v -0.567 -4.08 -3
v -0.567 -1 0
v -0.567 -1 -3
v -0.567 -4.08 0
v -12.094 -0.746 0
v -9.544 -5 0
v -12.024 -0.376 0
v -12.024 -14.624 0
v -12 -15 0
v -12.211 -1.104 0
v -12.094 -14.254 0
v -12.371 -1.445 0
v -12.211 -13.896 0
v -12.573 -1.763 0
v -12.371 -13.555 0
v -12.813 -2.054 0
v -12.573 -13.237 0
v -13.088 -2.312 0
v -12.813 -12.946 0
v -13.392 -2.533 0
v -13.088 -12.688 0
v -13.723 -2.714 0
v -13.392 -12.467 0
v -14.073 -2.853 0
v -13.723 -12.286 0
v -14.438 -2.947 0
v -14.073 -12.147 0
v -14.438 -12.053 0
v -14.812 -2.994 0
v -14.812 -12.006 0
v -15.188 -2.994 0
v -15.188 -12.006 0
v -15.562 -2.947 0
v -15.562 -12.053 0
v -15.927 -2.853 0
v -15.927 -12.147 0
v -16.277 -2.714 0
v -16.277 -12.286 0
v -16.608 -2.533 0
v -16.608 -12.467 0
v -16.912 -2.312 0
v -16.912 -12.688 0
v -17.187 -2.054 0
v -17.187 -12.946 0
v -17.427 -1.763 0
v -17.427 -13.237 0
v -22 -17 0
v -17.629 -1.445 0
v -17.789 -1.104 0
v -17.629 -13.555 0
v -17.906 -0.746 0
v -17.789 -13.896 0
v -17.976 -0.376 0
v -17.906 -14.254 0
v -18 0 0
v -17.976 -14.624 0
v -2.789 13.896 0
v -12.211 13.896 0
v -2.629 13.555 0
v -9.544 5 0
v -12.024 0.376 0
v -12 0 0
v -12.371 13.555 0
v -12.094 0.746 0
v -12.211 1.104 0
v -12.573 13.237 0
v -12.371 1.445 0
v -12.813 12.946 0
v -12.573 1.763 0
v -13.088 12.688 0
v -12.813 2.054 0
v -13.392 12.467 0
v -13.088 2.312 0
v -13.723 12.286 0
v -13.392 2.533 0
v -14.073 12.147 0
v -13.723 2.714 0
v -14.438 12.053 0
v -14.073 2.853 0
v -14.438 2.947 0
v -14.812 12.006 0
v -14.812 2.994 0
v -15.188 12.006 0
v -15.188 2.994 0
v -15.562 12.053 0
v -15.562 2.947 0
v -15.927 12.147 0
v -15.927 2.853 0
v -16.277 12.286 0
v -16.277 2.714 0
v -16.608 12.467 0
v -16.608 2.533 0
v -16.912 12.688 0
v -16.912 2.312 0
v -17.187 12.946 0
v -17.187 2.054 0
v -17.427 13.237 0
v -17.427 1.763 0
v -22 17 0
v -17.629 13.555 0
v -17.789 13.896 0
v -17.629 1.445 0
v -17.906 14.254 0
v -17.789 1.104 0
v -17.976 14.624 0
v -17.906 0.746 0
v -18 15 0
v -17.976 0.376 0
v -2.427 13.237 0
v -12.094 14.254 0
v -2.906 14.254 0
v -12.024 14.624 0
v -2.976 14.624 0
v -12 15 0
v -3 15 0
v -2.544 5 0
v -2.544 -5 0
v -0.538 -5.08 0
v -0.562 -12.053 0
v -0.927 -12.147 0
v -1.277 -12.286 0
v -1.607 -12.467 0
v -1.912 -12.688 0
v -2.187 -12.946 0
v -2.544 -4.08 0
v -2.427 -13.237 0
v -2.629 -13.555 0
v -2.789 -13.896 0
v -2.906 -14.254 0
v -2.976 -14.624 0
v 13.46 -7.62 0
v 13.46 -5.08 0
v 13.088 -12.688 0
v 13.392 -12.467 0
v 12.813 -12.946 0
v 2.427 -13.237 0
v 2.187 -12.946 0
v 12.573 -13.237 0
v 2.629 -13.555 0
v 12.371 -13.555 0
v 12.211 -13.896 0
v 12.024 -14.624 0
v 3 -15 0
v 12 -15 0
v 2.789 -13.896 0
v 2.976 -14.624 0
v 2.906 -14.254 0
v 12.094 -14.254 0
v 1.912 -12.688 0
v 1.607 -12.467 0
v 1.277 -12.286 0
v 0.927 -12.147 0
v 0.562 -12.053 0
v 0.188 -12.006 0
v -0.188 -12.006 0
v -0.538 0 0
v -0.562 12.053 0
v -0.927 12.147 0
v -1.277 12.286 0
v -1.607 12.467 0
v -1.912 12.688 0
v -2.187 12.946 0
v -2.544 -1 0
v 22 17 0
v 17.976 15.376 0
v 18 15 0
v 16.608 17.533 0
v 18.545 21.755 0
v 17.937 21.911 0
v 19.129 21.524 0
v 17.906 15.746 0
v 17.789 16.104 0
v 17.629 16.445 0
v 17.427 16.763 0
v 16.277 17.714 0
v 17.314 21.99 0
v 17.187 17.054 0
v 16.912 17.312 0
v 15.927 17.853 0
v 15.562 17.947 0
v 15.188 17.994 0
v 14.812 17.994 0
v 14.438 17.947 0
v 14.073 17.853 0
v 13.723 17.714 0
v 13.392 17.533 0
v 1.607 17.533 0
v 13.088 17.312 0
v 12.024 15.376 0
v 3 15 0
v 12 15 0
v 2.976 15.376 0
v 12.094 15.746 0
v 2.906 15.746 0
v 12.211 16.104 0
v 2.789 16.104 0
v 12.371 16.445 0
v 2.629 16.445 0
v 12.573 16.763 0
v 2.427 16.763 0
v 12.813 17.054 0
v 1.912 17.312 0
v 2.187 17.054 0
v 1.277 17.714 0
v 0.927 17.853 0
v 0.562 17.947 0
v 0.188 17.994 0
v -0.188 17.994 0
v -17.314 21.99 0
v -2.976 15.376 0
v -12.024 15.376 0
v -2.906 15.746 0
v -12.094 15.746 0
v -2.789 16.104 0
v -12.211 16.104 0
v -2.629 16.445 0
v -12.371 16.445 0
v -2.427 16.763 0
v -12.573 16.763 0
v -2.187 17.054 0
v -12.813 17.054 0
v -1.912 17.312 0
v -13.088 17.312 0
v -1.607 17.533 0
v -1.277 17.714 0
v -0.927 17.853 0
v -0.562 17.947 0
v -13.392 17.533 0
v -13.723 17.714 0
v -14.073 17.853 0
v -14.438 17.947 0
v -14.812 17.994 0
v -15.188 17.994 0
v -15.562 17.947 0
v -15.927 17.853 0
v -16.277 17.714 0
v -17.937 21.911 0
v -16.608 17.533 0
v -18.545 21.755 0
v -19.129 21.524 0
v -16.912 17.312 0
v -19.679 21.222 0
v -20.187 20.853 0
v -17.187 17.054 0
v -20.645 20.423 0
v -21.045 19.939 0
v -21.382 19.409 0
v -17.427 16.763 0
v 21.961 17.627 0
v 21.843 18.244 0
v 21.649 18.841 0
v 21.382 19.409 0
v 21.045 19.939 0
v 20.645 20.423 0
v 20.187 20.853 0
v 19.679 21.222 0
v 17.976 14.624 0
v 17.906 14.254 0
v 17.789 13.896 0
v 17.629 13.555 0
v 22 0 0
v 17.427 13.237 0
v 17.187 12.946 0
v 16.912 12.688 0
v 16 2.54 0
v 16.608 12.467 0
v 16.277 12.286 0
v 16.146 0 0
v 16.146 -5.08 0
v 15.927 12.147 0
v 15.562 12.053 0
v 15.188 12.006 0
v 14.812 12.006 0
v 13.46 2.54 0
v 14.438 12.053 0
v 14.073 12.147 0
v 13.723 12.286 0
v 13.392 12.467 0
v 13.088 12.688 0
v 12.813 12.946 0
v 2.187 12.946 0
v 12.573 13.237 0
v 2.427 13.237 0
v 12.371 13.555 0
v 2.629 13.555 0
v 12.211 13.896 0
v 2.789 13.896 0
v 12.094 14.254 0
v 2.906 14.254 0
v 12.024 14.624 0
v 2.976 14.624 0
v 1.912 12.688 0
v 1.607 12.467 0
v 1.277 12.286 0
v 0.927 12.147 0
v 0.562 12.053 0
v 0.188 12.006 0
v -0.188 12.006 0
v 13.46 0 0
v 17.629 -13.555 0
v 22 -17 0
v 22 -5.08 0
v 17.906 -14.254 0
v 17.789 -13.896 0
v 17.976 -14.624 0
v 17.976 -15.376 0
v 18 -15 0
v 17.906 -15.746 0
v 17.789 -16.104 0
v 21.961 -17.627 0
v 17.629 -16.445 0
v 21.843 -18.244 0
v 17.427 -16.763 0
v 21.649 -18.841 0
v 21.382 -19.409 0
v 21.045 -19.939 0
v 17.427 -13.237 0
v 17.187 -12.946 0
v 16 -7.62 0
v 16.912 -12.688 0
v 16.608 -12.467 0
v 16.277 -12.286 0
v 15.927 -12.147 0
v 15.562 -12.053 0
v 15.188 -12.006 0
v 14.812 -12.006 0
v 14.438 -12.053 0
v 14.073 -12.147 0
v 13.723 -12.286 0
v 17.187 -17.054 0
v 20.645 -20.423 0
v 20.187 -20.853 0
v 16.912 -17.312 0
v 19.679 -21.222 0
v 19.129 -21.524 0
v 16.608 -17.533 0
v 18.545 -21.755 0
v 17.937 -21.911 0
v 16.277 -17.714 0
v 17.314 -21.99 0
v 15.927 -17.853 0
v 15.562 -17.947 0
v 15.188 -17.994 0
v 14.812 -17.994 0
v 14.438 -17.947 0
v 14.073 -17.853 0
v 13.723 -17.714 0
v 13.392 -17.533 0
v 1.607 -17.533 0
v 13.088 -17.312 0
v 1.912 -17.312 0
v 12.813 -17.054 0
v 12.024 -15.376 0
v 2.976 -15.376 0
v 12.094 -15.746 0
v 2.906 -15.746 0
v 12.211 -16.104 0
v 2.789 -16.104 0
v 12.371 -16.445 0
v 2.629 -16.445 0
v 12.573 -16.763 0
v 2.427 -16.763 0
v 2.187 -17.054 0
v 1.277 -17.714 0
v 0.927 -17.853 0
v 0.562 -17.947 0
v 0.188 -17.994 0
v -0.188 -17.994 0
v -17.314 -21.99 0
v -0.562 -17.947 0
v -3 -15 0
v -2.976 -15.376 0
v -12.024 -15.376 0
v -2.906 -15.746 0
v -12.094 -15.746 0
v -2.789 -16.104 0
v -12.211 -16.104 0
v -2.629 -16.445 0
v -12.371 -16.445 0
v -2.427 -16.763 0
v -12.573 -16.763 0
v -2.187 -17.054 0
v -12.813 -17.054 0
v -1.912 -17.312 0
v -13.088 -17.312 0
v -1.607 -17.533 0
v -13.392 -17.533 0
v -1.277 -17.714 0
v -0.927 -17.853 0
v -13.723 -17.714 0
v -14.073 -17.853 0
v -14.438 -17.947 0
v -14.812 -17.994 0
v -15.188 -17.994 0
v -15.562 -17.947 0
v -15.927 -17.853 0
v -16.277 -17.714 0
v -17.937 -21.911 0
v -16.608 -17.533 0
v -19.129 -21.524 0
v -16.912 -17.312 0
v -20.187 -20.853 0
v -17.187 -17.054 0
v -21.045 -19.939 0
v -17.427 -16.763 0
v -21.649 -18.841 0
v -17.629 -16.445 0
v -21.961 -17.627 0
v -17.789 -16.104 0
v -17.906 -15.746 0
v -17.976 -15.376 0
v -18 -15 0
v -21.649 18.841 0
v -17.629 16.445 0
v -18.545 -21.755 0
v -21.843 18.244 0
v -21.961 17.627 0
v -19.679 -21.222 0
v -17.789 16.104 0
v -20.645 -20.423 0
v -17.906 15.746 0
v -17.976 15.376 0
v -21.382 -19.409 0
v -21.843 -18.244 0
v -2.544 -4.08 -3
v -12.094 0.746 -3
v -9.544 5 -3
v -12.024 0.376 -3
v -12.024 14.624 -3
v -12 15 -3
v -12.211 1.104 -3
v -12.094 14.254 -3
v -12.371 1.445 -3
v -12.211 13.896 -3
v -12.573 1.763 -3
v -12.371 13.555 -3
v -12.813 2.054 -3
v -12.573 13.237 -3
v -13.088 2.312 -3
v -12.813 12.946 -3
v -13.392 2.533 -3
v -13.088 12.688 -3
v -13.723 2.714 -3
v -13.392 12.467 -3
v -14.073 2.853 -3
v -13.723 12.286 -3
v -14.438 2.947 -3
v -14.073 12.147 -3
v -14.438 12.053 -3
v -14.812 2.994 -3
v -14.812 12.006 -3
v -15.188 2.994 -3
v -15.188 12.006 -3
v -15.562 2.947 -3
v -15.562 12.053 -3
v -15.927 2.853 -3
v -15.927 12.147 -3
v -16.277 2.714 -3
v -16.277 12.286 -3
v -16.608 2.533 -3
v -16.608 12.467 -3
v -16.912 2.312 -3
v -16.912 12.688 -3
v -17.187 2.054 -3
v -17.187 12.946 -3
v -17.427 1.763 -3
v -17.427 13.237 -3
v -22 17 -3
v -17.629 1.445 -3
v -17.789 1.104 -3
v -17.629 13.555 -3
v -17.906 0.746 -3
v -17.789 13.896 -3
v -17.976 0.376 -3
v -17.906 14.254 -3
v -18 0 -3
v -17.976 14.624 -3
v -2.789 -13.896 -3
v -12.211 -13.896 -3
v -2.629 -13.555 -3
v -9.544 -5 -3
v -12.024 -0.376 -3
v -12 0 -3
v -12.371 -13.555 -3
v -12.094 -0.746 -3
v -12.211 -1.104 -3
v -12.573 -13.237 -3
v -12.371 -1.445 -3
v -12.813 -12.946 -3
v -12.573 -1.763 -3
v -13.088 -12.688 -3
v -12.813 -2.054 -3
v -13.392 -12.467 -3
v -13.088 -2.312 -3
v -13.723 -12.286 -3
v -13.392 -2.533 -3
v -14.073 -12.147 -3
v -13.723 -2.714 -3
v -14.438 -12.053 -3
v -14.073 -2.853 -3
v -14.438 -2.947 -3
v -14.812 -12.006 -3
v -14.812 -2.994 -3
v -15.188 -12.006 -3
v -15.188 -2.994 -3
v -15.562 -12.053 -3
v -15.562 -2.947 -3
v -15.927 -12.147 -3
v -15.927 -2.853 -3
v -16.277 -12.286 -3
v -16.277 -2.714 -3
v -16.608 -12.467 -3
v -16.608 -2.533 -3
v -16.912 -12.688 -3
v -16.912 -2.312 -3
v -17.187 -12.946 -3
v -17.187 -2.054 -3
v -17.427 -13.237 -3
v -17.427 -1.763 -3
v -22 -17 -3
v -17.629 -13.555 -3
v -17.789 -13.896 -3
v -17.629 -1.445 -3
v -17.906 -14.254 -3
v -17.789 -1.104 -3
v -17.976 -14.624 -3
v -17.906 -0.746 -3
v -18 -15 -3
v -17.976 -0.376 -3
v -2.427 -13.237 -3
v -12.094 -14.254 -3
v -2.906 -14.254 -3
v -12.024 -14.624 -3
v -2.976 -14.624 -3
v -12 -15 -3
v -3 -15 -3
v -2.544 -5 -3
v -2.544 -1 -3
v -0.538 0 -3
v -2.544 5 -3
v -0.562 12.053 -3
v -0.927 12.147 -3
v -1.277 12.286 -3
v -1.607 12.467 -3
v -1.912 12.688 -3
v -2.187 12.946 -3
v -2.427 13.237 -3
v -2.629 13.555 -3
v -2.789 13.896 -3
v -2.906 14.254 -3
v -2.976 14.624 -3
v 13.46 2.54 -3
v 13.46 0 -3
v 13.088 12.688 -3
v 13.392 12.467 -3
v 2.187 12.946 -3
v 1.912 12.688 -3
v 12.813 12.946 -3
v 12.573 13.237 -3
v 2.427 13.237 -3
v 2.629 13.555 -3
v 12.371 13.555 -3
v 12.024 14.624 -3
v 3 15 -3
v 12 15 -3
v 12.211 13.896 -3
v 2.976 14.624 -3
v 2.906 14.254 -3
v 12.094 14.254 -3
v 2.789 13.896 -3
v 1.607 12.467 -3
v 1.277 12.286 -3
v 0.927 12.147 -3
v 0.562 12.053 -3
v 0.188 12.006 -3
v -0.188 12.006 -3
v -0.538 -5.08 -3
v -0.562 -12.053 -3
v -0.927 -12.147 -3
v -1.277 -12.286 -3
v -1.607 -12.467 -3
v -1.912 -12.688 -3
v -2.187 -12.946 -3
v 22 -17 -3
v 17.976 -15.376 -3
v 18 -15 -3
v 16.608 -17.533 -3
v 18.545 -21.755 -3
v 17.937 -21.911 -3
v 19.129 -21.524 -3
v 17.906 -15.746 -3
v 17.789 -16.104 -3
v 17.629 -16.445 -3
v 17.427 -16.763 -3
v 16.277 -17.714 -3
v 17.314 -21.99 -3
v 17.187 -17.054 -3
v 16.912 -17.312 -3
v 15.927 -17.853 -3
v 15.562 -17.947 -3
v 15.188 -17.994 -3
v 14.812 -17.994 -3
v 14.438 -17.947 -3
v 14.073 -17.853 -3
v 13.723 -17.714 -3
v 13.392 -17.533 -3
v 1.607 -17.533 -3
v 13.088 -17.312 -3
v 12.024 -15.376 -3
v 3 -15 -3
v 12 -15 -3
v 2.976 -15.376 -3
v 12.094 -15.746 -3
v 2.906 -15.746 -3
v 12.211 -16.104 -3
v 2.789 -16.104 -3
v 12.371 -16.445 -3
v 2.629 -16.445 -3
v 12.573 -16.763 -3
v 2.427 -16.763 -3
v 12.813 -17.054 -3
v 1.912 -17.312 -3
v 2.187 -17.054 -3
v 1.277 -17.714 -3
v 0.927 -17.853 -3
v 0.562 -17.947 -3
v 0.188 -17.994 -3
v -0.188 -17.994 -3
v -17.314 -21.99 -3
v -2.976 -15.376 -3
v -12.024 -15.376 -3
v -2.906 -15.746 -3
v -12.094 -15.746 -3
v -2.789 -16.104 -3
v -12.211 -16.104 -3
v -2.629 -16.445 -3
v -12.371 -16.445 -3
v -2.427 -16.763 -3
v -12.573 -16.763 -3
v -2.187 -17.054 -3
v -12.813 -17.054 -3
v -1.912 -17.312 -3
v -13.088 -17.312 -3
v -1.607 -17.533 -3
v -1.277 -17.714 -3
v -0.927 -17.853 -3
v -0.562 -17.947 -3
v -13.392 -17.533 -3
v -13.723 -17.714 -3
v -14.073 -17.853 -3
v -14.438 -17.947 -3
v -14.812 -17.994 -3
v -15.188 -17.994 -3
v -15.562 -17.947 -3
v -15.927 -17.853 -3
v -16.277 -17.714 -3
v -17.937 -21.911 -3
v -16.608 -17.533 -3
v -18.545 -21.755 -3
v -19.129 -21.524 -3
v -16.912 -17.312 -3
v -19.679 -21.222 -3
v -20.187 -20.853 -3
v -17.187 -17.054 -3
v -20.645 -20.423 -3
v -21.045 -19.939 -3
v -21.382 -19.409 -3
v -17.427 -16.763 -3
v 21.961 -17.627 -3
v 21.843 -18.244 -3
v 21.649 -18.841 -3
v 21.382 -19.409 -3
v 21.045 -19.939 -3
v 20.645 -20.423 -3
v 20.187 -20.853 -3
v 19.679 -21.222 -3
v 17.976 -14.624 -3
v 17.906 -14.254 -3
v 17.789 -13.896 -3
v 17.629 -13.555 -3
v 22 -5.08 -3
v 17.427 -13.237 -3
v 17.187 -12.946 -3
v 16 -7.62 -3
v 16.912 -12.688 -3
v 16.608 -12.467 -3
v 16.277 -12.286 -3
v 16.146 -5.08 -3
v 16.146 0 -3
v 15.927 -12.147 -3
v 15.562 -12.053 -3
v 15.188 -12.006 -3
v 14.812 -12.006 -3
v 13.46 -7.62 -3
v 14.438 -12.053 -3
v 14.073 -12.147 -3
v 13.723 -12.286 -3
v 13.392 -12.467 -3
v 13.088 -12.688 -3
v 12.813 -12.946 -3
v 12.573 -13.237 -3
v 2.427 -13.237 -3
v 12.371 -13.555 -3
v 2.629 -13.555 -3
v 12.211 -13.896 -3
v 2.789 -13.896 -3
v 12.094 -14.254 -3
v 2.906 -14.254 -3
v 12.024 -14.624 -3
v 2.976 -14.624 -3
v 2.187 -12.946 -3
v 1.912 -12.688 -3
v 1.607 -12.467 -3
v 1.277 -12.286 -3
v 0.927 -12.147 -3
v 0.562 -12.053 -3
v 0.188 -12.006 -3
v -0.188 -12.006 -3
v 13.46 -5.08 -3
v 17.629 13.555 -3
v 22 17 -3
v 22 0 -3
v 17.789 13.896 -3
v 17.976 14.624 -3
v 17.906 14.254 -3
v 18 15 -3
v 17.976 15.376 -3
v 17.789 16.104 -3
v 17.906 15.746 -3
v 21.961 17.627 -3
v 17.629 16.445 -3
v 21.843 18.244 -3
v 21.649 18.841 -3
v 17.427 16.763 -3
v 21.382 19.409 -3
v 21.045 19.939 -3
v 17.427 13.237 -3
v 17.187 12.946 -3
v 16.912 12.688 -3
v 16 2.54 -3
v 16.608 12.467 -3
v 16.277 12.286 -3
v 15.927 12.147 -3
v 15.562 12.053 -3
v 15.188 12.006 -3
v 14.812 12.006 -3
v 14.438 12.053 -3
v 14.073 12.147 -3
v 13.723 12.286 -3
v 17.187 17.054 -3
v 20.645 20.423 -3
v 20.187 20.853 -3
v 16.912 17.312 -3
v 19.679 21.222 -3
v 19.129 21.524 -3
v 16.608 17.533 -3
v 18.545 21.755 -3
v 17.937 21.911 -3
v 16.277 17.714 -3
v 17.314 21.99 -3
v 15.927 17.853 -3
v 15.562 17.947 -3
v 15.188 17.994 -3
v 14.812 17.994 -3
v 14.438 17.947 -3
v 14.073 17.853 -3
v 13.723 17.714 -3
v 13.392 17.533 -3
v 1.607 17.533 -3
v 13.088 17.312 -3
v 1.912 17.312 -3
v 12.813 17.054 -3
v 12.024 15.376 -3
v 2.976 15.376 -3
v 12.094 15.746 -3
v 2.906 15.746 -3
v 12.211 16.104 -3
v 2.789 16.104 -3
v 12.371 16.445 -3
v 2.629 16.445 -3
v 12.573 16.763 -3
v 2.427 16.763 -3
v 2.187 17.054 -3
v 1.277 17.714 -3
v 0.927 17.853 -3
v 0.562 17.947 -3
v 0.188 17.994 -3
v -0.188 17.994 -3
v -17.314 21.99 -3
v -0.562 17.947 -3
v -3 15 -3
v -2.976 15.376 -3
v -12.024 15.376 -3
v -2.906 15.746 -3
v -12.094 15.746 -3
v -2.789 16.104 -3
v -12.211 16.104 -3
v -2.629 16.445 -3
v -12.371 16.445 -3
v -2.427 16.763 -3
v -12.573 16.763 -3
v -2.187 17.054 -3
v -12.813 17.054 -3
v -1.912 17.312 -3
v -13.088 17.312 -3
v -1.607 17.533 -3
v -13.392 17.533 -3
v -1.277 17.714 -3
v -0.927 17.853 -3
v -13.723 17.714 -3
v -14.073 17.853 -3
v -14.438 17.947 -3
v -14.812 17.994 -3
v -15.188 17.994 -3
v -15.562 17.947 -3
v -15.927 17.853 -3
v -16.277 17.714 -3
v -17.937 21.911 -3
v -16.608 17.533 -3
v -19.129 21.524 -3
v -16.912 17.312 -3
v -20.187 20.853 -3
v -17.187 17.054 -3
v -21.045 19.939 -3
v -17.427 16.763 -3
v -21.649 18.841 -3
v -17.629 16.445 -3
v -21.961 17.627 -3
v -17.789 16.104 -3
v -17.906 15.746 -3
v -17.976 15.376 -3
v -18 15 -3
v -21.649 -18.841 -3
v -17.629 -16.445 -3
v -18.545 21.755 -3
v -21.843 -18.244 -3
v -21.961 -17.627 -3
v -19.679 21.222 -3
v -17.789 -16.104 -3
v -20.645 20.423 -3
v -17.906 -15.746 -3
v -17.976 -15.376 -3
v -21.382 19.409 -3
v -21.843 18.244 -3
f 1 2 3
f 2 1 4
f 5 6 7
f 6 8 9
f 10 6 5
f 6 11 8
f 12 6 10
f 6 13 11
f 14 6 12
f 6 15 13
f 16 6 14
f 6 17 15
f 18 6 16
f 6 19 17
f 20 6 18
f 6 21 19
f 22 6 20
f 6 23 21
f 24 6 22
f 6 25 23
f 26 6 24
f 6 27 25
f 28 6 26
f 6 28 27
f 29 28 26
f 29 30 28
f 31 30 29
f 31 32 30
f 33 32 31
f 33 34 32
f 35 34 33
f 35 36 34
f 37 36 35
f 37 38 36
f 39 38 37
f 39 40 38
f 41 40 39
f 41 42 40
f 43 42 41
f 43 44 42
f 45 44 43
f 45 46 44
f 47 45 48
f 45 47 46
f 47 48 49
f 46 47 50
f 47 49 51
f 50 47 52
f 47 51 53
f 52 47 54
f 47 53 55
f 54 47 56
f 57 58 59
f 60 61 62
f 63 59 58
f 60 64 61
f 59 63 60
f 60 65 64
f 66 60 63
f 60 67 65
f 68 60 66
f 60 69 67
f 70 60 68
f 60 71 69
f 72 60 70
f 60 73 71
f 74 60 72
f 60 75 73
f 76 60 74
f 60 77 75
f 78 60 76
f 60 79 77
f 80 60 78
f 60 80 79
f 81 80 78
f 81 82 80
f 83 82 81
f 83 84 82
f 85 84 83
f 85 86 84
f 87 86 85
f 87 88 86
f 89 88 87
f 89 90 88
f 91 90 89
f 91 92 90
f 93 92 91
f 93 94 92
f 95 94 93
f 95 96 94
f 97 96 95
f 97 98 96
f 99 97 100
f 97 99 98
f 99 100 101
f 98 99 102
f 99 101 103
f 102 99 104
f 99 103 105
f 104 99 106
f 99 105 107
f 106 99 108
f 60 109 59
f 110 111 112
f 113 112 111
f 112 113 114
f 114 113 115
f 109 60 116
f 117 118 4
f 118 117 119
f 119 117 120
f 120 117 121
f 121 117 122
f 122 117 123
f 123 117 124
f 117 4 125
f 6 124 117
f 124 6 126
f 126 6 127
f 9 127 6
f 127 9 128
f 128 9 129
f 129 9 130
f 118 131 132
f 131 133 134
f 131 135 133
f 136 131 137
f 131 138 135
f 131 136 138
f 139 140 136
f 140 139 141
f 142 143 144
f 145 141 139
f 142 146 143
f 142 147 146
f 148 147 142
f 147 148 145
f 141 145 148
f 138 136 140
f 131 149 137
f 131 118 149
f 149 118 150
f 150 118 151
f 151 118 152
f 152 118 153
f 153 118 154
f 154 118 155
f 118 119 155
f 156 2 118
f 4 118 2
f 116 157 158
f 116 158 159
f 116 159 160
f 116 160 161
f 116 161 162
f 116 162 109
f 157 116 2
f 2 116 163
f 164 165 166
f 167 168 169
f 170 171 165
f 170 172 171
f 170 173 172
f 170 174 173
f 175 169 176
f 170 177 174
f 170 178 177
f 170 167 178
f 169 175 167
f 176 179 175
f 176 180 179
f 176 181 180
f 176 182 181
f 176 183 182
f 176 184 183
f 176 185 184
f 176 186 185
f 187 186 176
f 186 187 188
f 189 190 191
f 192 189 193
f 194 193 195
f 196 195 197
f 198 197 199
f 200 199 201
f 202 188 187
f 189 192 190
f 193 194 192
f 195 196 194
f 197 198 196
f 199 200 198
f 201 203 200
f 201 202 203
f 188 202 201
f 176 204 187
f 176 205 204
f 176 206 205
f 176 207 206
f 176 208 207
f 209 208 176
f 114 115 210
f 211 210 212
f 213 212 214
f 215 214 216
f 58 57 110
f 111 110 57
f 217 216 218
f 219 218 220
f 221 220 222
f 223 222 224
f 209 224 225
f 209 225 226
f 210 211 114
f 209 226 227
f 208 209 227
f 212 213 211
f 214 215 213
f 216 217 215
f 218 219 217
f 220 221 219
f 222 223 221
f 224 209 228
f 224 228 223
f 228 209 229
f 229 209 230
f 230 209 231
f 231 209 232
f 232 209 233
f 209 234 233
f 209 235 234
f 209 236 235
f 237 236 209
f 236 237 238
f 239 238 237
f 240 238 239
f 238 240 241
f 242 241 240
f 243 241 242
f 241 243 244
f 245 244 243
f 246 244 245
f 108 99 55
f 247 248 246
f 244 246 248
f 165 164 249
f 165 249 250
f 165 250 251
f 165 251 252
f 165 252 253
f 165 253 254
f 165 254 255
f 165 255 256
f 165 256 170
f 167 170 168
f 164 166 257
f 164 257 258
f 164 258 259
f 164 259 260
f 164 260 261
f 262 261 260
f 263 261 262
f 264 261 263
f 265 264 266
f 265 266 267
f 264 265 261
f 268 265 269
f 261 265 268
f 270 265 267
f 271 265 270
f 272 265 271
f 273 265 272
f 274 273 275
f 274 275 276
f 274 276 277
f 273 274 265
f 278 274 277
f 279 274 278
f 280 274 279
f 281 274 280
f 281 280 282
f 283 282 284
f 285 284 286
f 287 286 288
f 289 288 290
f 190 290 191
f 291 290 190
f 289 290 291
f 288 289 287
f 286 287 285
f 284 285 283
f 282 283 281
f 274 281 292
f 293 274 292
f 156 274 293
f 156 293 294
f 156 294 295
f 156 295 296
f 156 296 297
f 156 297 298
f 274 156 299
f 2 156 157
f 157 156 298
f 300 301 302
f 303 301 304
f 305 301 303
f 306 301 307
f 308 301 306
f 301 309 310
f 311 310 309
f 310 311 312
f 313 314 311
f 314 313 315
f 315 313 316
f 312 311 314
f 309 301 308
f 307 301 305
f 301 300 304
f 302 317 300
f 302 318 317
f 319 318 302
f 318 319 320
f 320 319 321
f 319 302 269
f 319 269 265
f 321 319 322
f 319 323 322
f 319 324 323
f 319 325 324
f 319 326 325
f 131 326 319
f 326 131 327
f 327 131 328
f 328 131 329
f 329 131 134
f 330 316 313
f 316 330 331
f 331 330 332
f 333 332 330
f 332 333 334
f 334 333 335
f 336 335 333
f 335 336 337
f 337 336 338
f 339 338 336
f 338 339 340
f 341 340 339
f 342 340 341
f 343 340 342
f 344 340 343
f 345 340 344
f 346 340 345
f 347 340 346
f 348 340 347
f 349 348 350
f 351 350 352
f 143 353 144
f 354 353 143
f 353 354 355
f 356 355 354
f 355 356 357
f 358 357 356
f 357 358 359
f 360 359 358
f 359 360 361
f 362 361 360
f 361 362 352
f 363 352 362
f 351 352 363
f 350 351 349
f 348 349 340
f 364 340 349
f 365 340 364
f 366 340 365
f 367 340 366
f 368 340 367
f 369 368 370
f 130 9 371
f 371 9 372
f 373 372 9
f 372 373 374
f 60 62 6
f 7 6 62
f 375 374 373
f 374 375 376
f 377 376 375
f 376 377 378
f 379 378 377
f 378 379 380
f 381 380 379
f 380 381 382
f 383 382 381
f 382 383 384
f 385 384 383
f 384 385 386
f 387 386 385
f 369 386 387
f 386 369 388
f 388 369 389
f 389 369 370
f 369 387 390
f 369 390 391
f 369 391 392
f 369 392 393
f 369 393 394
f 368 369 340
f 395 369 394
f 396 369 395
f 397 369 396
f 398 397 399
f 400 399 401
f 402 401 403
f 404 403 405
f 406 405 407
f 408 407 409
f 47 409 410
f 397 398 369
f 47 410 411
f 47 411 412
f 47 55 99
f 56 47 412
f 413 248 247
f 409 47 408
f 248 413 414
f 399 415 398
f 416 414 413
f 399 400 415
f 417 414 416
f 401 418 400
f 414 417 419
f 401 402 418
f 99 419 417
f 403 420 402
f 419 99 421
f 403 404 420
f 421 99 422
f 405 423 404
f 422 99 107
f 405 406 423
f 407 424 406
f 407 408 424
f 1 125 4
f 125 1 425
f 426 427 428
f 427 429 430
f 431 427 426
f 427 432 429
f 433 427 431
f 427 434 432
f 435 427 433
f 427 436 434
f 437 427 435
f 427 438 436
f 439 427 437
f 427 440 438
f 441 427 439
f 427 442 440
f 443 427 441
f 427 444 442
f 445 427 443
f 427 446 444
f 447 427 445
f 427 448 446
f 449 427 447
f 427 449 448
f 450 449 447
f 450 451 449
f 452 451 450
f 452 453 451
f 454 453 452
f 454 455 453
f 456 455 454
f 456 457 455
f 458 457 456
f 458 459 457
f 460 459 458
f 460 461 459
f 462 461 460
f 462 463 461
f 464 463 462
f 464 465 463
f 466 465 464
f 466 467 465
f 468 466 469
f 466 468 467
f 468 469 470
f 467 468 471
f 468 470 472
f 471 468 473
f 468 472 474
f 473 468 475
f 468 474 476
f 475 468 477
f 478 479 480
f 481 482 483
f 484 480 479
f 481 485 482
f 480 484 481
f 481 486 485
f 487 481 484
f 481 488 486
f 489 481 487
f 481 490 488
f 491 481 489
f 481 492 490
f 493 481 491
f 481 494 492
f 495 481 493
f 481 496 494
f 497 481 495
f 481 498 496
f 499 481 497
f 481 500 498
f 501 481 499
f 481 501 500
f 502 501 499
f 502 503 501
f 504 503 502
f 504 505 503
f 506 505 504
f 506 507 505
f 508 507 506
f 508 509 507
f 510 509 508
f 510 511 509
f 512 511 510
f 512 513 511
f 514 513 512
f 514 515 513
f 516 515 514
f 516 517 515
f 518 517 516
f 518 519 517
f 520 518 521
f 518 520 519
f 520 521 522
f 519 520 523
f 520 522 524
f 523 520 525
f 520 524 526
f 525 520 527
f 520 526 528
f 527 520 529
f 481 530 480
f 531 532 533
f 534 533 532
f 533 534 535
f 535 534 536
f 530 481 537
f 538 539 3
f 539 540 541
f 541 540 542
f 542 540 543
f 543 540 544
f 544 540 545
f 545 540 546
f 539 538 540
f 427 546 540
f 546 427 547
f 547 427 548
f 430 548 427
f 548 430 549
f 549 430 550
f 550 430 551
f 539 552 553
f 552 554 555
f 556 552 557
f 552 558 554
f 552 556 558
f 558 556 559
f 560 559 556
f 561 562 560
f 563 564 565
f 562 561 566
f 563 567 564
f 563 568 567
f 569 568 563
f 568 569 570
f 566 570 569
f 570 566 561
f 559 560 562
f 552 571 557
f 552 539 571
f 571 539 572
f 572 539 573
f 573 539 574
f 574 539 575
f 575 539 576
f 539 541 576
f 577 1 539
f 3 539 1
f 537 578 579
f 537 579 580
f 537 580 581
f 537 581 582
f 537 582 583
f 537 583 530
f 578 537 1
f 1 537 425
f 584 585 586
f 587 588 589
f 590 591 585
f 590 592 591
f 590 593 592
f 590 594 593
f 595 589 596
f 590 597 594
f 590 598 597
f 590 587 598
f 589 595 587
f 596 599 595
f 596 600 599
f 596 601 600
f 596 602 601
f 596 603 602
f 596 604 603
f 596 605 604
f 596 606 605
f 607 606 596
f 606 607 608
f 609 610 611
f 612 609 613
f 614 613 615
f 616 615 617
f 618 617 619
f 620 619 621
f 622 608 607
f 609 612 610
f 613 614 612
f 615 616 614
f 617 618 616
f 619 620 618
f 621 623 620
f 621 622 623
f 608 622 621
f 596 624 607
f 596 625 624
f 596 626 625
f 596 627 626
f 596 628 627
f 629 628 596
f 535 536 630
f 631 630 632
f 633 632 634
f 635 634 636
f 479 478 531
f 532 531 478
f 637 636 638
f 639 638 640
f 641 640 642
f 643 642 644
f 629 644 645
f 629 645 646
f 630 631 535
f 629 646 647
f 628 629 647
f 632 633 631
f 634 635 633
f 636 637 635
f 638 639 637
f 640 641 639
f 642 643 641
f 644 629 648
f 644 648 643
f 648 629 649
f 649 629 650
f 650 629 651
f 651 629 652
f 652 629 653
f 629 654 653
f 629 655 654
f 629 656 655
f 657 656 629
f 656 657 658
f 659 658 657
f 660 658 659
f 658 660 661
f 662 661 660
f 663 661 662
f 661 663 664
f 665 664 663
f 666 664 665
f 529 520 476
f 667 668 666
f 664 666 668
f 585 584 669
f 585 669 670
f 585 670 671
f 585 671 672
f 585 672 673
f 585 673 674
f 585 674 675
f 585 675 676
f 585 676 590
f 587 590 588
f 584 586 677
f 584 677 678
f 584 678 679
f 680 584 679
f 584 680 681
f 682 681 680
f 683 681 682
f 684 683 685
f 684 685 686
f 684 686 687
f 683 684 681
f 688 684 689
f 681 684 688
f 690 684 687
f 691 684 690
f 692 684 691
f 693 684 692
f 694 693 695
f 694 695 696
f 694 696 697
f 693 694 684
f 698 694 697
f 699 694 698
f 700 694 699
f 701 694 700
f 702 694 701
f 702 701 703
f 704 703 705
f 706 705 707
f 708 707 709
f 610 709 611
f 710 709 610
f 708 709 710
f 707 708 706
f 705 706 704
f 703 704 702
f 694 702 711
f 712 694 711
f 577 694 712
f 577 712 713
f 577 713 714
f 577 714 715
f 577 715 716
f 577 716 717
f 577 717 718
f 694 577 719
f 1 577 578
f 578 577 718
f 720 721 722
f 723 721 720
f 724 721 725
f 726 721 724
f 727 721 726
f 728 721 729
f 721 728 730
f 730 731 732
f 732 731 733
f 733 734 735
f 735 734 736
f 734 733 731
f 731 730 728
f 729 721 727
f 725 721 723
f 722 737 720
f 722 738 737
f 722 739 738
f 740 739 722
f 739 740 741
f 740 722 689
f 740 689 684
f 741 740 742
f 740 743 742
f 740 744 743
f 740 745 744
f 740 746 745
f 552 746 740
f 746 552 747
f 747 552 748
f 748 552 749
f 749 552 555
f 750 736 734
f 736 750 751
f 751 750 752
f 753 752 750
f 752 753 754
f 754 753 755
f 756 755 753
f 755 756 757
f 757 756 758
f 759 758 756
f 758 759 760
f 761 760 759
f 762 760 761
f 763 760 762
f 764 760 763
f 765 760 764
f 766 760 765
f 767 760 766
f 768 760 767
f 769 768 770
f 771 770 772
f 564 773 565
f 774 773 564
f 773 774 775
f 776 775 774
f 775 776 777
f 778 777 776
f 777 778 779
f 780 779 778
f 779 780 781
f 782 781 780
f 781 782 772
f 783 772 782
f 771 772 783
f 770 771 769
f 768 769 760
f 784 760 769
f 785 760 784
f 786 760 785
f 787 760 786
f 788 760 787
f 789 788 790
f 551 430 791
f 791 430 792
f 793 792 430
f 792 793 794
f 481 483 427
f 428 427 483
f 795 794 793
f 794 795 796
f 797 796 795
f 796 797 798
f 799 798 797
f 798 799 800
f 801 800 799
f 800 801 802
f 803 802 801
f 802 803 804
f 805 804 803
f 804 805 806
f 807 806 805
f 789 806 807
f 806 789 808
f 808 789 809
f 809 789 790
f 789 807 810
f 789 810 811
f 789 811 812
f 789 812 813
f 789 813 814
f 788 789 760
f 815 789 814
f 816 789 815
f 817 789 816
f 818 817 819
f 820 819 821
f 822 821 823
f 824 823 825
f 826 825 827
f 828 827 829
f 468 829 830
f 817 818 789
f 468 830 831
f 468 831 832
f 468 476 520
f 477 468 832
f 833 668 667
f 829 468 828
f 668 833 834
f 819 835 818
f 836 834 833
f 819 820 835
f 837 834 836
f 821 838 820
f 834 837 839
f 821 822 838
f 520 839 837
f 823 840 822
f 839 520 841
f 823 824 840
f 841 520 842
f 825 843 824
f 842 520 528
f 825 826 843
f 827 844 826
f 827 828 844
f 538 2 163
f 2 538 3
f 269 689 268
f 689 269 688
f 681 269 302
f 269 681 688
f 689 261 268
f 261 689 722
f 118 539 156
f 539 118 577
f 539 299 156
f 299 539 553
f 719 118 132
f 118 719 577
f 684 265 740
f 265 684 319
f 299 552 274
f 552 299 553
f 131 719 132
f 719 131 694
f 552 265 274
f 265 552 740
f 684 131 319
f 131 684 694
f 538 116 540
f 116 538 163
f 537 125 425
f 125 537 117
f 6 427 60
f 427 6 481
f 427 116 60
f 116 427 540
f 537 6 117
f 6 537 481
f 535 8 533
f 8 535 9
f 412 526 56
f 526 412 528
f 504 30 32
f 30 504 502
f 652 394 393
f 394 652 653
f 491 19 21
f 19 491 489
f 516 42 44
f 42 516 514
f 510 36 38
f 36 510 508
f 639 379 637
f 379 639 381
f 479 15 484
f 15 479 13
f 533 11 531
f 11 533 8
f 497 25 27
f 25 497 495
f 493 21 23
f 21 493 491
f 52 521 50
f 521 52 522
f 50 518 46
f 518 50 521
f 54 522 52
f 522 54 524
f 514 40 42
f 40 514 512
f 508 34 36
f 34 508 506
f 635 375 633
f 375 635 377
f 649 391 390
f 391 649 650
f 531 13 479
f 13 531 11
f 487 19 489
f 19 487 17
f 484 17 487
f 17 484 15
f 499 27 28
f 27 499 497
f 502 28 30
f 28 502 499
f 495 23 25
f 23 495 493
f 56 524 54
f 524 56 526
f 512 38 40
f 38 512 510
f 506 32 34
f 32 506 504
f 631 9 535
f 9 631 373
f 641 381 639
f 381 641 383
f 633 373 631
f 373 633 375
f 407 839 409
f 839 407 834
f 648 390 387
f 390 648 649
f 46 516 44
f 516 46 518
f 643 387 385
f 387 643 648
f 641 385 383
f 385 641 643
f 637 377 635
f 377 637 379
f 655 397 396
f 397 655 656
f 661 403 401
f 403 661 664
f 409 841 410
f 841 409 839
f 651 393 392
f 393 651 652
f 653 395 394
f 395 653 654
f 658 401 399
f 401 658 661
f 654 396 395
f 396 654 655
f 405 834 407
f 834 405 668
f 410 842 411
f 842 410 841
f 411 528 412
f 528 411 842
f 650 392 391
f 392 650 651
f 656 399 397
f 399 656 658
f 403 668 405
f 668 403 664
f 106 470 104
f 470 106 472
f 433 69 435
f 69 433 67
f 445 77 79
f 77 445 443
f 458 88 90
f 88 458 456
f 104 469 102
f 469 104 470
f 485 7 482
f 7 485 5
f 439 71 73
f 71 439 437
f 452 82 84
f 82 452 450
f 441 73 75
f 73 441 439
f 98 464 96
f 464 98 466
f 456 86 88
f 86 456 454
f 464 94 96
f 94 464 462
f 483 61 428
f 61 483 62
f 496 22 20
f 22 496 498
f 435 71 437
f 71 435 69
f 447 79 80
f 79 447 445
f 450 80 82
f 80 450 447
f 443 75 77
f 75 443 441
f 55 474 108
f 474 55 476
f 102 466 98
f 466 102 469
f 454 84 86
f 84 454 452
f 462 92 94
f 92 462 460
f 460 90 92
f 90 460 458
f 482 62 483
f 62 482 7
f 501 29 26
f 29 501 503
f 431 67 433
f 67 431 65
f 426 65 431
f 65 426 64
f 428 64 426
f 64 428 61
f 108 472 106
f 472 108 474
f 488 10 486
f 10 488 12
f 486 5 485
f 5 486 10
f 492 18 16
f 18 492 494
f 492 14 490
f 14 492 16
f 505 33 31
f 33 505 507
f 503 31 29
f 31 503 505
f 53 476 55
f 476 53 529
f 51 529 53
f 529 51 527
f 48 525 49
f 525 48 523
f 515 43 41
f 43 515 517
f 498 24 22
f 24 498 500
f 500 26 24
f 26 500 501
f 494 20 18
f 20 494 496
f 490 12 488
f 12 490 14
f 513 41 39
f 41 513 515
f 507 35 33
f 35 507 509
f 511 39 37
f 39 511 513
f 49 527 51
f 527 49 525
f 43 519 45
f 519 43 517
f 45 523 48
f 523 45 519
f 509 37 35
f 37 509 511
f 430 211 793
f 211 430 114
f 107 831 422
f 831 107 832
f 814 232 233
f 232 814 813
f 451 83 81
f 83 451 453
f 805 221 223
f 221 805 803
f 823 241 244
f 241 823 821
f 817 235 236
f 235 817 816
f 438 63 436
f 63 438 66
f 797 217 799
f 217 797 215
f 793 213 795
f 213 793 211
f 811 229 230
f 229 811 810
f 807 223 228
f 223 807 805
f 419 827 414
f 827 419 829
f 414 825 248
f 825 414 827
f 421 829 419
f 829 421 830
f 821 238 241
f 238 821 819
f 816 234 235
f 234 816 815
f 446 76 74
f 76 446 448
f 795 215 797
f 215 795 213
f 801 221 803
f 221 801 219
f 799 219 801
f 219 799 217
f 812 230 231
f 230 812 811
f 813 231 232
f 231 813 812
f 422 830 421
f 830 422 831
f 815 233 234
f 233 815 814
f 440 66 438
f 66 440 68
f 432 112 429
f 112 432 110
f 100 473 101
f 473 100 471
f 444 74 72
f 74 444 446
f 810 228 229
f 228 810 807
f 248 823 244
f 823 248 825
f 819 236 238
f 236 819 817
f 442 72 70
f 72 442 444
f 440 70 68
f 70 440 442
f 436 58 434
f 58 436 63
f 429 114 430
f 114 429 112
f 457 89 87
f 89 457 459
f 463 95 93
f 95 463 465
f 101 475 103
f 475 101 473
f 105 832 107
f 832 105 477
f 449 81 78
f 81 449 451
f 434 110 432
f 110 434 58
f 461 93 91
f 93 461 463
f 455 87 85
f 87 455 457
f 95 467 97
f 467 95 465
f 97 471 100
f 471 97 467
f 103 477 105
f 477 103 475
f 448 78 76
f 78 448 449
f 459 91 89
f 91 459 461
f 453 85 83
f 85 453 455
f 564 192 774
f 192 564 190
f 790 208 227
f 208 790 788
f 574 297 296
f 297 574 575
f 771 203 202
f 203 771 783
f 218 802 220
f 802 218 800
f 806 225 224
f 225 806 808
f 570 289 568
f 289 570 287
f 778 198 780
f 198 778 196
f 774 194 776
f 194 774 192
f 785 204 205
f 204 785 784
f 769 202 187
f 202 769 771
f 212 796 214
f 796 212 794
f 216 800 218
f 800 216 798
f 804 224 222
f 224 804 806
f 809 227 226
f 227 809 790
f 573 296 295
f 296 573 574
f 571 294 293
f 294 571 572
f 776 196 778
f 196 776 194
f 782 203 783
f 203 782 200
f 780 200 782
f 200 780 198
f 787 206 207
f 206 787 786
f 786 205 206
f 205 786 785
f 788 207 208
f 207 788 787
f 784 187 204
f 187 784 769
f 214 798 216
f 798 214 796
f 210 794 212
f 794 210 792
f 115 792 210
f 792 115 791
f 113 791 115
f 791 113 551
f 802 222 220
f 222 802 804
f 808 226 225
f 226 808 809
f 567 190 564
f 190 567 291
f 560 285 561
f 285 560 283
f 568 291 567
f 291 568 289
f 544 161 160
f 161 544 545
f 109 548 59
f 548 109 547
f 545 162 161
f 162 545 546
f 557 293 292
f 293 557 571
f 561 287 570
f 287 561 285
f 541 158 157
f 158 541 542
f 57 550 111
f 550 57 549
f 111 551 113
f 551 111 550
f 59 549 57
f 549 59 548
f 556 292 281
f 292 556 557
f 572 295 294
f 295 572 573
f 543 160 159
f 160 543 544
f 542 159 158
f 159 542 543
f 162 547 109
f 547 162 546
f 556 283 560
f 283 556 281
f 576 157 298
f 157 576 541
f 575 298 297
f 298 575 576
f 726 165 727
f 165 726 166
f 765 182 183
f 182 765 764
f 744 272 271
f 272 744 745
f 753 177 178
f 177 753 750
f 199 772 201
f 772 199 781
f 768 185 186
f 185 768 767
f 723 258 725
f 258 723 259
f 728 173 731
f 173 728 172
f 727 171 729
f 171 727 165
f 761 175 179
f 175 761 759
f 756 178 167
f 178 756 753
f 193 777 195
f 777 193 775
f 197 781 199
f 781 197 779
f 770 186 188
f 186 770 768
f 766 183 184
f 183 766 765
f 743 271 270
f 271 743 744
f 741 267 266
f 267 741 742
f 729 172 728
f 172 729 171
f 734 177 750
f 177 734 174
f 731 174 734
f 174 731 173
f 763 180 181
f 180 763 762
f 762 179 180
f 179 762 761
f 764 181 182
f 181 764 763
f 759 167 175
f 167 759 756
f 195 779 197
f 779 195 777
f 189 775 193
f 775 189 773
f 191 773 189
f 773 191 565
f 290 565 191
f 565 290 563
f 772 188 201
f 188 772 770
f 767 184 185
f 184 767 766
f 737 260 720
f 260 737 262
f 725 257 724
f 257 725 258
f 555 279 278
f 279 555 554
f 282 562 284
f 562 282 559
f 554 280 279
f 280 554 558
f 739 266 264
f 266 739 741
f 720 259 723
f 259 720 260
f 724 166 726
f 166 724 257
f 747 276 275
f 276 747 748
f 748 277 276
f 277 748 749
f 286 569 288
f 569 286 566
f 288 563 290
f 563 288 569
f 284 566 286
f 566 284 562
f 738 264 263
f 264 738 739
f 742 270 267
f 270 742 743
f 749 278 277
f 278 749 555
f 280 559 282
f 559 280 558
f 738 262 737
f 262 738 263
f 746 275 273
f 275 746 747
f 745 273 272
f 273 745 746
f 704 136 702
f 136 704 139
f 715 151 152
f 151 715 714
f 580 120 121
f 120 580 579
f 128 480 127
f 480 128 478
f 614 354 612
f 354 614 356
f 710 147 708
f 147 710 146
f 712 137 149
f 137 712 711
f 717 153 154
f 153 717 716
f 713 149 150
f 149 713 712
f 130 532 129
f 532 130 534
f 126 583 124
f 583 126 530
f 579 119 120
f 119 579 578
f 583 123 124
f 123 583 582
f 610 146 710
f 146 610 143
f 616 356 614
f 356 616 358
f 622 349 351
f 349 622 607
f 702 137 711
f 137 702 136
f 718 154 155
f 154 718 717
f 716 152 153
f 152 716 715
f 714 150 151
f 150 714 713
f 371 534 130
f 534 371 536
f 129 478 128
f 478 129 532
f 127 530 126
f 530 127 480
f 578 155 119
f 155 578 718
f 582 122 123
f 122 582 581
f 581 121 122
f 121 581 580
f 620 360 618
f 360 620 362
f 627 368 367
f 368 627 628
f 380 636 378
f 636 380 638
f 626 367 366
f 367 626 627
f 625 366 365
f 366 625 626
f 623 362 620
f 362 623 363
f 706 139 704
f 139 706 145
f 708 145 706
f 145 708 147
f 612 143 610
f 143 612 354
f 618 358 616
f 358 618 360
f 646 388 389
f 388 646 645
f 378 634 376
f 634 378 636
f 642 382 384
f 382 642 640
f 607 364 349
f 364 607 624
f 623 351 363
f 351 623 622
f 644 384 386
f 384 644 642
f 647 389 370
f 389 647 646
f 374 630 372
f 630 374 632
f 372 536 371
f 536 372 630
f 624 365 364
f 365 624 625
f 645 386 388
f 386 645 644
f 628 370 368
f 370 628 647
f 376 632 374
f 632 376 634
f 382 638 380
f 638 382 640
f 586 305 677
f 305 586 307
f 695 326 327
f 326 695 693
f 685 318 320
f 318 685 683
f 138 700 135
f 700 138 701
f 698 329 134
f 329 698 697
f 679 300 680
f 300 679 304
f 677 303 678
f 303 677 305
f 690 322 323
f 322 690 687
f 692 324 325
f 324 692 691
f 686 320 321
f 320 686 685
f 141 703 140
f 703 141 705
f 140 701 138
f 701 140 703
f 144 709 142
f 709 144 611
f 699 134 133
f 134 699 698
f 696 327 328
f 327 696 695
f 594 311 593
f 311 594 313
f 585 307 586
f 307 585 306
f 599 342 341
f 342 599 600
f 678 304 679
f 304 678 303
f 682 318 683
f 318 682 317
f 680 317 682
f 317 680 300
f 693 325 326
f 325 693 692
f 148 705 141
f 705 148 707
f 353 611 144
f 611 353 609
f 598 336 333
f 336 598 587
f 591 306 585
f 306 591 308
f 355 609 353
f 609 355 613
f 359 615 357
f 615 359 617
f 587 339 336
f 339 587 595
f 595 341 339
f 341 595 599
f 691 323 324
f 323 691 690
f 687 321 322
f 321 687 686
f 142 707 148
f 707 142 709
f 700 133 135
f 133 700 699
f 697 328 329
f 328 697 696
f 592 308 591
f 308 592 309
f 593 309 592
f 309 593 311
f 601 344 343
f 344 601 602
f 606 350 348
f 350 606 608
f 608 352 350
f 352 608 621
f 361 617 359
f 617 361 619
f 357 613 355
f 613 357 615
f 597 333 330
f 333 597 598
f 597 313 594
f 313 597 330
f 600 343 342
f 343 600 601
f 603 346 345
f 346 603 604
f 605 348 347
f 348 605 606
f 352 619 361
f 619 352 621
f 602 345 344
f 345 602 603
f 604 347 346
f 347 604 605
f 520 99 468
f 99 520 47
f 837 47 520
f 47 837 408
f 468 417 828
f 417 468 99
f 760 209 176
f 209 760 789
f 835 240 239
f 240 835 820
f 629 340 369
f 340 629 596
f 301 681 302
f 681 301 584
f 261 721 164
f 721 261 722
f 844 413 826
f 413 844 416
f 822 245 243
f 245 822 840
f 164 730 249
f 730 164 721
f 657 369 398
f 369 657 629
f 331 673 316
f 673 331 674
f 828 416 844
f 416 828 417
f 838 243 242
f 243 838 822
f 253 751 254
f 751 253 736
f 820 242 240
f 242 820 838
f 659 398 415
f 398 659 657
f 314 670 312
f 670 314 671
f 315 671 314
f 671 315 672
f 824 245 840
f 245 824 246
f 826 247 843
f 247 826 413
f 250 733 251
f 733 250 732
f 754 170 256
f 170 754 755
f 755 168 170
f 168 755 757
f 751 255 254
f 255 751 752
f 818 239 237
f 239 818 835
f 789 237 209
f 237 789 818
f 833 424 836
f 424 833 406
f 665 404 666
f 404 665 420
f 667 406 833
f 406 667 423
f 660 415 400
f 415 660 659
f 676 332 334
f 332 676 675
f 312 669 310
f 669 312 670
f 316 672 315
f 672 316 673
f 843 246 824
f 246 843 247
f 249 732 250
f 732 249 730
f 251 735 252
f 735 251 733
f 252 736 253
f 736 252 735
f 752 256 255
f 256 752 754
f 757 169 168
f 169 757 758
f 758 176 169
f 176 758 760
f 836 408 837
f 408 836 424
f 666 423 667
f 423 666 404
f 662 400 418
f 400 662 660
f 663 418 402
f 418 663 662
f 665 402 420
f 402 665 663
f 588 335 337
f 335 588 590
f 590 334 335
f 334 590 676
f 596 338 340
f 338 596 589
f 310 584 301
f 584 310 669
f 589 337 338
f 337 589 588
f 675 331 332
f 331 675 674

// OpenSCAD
$fn = 50;


difference() {
	union() {
		translate(v = [0, 0, -3]) {
			hull() {
				translate(v = [-17.0000000000, 17.0000000000, 0]) {
					cylinder(h = 3, r = 5);
				}
				translate(v = [17.0000000000, 17.0000000000, 0]) {
					cylinder(h = 3, r = 5);
				}
				translate(v = [-17.0000000000, -17.0000000000, 0]) {
					cylinder(h = 3, r = 5);
				}
				translate(v = [17.0000000000, -17.0000000000, 0]) {
					cylinder(h = 3, r = 5);
				}
			}
		}
	}
	union() {
		translate(v = [22.5000000000, 0, -3]) {
			rotate(a = [0, 0, 180]) {
				difference() {
					union() {
						#translate(v = [23.0670000000, 1.0000000000, 0]) {
							cube(size = [5, 3.0800000000, 3]);
						}
						#translate(v = [0.3540000000, 0.0000000000, 0]) {
							cube(size = [6, 5.0800000000, 3]);
						}
						#translate(v = [9.0380000000, 0.0000000000, 0]) {
							cube(size = [14, 5.0800000000, 3]);
						}
						#translate(v = [6.5000000000, -2.5400000000, 0]) {
							cube(size = [2.5400000000, 10.1600000000, 3]);
						}
						#translate(v = [25.0440000000, -5.0000000000, 0]) {
							cube(size = [7, 10, 3]);
						}
					}
					union();
				}
			}
		}
		translate(v = [-15.0000000000, -15.0000000000, -50.0000000000]) {
			cylinder(h = 100, r = 3.0000000000);
		}
		translate(v = [-15.0000000000, 0.0000000000, -50.0000000000]) {
			cylinder(h = 100, r = 3.0000000000);
		}
		translate(v = [-15.0000000000, 15.0000000000, -50.0000000000]) {
			cylinder(h = 100, r = 3.0000000000);
		}
		translate(v = [-15.0000000000, 15.0000000000, -50.0000000000]) {
			cylinder(h = 100, r = 3.0000000000);
		}
		translate(v = [0.0000000000, 15.0000000000, -50.0000000000]) {
			cylinder(h = 100, r = 3.0000000000);
		}
		translate(v = [15.0000000000, 15.0000000000, -50.0000000000]) {
			cylinder(h = 100, r = 3.0000000000);
		}
		translate(v = [-15.0000000000, -15.0000000000, -50.0000000000]) {
			cylinder(h = 100, r = 3.0000000000);
		}
		translate(v = [0.0000000000, -15.0000000000, -50.0000000000]) {
			cylinder(h = 100, r = 3.0000000000);
		}
		translate(v = [15.0000000000, -15.0000000000, -50.0000000000]) {
			cylinder(h = 100, r = 3.0000000000);
		}
	}
}
